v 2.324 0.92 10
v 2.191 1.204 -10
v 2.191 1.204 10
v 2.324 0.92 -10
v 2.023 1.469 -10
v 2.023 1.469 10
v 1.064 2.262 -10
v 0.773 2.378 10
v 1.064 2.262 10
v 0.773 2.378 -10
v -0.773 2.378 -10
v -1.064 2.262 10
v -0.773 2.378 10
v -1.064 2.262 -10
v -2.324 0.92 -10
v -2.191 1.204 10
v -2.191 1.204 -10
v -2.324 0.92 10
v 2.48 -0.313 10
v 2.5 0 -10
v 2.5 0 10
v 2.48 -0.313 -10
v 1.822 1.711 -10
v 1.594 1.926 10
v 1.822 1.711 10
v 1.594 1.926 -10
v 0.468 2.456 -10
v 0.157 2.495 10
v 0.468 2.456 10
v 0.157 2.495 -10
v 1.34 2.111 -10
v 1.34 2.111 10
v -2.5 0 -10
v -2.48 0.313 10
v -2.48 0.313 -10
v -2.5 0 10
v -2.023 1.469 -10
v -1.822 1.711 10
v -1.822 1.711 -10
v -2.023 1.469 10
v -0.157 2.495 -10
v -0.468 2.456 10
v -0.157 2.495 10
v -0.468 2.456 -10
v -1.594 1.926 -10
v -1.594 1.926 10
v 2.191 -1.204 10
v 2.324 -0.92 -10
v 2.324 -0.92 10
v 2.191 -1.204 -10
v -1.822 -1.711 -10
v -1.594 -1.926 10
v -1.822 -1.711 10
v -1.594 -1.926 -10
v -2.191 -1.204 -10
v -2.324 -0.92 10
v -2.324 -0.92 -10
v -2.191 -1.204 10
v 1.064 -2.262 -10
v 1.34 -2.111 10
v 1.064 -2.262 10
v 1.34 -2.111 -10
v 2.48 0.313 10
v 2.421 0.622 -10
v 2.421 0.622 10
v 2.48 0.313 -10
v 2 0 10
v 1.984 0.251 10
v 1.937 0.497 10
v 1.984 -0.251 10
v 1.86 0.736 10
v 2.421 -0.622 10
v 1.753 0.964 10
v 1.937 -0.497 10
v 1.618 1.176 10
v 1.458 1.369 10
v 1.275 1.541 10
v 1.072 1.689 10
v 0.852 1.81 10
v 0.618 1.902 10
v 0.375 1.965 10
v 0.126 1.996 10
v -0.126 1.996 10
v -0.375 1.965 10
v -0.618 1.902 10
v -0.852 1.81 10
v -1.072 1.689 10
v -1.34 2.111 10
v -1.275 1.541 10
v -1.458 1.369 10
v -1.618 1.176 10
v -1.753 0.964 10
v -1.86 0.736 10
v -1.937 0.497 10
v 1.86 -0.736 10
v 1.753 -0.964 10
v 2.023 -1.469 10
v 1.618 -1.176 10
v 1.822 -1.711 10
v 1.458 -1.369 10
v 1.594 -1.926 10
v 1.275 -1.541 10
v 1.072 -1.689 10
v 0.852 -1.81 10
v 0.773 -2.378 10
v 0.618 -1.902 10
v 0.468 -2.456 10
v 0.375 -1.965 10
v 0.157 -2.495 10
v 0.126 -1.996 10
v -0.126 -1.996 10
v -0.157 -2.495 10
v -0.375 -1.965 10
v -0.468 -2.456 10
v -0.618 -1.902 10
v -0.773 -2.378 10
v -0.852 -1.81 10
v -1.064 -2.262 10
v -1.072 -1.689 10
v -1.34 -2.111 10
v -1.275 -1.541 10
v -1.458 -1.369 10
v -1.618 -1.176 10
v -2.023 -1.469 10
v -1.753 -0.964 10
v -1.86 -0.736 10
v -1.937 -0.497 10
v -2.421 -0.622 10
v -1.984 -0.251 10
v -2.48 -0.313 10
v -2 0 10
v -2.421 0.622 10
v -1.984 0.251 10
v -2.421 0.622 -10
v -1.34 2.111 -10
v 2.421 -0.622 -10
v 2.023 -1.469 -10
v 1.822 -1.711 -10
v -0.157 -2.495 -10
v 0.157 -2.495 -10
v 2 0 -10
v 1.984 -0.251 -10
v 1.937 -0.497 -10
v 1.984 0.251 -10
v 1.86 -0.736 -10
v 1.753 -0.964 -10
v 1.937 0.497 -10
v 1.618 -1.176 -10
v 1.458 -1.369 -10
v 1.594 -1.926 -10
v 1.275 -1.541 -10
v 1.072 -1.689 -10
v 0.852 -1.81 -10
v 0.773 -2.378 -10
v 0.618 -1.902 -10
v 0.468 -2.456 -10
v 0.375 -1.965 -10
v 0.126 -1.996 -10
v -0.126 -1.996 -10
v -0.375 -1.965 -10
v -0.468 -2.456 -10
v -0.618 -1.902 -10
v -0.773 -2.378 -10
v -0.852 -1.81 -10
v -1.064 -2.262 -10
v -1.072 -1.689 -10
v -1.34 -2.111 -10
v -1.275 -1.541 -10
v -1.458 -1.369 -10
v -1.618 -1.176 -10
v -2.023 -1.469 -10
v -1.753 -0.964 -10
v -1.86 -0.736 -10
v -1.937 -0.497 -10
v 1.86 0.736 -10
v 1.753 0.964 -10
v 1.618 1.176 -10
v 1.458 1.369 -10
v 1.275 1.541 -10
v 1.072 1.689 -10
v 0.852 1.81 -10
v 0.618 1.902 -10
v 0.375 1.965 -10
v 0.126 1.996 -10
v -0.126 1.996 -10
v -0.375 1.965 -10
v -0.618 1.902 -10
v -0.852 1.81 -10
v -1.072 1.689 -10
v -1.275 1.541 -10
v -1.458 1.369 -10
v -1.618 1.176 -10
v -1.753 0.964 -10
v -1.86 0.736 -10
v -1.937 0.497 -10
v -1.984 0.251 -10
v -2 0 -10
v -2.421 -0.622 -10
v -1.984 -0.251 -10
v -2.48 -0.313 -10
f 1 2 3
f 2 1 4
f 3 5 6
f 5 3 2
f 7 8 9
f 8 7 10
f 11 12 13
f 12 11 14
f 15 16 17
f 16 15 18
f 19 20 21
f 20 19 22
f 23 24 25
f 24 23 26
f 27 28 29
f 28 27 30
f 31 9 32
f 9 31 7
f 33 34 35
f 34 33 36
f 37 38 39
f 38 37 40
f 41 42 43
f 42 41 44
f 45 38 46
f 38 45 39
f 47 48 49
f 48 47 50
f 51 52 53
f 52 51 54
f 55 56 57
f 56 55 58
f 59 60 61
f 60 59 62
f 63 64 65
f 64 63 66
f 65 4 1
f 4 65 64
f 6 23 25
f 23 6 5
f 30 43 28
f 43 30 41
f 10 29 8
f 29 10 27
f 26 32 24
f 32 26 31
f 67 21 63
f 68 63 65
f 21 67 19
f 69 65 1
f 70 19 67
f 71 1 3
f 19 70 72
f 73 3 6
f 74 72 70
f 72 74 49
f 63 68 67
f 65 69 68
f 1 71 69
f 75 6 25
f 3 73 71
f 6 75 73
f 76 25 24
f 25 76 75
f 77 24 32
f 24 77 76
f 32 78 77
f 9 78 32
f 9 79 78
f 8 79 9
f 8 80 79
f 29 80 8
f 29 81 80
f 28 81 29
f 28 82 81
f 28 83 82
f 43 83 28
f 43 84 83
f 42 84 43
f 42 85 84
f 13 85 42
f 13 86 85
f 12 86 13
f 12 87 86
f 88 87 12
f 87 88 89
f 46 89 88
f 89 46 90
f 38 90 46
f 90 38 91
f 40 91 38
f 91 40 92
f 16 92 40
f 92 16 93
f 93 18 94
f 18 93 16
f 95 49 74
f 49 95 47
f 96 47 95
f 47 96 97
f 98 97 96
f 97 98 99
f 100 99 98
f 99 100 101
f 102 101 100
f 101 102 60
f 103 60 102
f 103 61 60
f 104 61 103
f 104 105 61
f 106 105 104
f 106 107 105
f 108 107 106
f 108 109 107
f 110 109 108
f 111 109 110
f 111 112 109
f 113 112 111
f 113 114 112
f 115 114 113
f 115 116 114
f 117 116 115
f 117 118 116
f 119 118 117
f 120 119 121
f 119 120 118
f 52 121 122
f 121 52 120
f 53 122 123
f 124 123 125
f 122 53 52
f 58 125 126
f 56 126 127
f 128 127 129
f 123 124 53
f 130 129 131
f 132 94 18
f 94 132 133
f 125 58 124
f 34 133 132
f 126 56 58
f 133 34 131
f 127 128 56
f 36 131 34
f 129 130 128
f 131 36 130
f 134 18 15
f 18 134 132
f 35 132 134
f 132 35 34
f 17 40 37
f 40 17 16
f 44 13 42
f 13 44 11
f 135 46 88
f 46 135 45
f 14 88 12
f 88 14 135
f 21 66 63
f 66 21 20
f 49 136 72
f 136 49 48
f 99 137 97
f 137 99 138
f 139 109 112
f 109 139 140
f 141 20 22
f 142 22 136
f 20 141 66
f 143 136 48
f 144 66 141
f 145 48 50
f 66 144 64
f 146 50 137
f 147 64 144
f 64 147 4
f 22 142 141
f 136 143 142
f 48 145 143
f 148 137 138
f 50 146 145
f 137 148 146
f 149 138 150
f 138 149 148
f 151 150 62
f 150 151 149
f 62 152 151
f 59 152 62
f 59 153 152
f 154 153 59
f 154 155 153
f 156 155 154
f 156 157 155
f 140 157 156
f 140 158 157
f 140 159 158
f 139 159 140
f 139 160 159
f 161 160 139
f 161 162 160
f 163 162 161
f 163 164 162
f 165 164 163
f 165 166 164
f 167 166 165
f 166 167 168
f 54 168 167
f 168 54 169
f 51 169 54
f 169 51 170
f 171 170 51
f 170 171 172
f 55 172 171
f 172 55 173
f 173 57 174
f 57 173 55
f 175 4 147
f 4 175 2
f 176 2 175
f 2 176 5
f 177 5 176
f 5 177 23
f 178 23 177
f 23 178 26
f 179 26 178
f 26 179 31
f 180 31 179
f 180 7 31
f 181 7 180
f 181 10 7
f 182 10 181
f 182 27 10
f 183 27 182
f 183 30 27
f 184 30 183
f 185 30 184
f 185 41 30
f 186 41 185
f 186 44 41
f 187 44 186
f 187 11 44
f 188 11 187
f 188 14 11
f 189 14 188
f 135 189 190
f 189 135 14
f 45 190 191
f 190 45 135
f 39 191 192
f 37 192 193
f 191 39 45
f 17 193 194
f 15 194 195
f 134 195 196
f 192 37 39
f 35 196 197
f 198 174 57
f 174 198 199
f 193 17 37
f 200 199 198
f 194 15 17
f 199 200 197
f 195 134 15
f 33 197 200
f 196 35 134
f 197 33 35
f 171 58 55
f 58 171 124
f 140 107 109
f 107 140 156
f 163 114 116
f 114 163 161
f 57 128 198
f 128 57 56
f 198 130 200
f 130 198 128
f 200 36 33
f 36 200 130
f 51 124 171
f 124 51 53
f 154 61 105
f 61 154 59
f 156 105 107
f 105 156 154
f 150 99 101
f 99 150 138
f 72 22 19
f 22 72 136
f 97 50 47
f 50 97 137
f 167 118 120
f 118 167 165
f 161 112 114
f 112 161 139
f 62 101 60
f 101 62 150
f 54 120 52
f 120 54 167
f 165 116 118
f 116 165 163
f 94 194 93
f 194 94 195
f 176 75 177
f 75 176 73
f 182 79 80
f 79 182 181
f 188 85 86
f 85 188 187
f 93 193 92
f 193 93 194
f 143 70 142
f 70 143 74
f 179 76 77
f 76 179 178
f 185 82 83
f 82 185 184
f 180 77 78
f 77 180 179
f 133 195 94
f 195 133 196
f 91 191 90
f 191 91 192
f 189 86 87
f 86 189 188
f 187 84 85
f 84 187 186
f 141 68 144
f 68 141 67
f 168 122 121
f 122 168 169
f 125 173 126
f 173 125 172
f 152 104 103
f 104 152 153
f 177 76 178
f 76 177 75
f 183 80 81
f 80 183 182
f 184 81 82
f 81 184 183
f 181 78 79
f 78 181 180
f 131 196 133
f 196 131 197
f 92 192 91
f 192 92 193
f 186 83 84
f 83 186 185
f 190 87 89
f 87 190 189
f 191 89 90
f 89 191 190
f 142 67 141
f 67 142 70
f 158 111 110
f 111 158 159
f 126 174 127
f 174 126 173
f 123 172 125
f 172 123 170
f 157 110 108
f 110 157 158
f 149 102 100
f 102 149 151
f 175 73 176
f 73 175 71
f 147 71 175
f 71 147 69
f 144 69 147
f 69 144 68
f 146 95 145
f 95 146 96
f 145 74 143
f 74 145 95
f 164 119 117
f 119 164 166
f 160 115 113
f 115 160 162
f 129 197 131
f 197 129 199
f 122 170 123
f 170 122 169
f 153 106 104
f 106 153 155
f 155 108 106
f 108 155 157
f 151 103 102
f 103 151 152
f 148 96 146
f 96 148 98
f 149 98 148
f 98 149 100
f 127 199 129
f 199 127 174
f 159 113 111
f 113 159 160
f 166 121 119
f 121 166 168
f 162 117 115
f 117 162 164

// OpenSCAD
$fn = 50;


difference() {
	union() {
		translate(v = [0, 0, -10.0000000000]) {
			cylinder(h = 20, r = 2.5000000000);
		}
	}
	union() {
		translate(v = [0, 0, -100.0000000000]) {
			cylinder(h = 200, r = 2);
		}
	}
}
